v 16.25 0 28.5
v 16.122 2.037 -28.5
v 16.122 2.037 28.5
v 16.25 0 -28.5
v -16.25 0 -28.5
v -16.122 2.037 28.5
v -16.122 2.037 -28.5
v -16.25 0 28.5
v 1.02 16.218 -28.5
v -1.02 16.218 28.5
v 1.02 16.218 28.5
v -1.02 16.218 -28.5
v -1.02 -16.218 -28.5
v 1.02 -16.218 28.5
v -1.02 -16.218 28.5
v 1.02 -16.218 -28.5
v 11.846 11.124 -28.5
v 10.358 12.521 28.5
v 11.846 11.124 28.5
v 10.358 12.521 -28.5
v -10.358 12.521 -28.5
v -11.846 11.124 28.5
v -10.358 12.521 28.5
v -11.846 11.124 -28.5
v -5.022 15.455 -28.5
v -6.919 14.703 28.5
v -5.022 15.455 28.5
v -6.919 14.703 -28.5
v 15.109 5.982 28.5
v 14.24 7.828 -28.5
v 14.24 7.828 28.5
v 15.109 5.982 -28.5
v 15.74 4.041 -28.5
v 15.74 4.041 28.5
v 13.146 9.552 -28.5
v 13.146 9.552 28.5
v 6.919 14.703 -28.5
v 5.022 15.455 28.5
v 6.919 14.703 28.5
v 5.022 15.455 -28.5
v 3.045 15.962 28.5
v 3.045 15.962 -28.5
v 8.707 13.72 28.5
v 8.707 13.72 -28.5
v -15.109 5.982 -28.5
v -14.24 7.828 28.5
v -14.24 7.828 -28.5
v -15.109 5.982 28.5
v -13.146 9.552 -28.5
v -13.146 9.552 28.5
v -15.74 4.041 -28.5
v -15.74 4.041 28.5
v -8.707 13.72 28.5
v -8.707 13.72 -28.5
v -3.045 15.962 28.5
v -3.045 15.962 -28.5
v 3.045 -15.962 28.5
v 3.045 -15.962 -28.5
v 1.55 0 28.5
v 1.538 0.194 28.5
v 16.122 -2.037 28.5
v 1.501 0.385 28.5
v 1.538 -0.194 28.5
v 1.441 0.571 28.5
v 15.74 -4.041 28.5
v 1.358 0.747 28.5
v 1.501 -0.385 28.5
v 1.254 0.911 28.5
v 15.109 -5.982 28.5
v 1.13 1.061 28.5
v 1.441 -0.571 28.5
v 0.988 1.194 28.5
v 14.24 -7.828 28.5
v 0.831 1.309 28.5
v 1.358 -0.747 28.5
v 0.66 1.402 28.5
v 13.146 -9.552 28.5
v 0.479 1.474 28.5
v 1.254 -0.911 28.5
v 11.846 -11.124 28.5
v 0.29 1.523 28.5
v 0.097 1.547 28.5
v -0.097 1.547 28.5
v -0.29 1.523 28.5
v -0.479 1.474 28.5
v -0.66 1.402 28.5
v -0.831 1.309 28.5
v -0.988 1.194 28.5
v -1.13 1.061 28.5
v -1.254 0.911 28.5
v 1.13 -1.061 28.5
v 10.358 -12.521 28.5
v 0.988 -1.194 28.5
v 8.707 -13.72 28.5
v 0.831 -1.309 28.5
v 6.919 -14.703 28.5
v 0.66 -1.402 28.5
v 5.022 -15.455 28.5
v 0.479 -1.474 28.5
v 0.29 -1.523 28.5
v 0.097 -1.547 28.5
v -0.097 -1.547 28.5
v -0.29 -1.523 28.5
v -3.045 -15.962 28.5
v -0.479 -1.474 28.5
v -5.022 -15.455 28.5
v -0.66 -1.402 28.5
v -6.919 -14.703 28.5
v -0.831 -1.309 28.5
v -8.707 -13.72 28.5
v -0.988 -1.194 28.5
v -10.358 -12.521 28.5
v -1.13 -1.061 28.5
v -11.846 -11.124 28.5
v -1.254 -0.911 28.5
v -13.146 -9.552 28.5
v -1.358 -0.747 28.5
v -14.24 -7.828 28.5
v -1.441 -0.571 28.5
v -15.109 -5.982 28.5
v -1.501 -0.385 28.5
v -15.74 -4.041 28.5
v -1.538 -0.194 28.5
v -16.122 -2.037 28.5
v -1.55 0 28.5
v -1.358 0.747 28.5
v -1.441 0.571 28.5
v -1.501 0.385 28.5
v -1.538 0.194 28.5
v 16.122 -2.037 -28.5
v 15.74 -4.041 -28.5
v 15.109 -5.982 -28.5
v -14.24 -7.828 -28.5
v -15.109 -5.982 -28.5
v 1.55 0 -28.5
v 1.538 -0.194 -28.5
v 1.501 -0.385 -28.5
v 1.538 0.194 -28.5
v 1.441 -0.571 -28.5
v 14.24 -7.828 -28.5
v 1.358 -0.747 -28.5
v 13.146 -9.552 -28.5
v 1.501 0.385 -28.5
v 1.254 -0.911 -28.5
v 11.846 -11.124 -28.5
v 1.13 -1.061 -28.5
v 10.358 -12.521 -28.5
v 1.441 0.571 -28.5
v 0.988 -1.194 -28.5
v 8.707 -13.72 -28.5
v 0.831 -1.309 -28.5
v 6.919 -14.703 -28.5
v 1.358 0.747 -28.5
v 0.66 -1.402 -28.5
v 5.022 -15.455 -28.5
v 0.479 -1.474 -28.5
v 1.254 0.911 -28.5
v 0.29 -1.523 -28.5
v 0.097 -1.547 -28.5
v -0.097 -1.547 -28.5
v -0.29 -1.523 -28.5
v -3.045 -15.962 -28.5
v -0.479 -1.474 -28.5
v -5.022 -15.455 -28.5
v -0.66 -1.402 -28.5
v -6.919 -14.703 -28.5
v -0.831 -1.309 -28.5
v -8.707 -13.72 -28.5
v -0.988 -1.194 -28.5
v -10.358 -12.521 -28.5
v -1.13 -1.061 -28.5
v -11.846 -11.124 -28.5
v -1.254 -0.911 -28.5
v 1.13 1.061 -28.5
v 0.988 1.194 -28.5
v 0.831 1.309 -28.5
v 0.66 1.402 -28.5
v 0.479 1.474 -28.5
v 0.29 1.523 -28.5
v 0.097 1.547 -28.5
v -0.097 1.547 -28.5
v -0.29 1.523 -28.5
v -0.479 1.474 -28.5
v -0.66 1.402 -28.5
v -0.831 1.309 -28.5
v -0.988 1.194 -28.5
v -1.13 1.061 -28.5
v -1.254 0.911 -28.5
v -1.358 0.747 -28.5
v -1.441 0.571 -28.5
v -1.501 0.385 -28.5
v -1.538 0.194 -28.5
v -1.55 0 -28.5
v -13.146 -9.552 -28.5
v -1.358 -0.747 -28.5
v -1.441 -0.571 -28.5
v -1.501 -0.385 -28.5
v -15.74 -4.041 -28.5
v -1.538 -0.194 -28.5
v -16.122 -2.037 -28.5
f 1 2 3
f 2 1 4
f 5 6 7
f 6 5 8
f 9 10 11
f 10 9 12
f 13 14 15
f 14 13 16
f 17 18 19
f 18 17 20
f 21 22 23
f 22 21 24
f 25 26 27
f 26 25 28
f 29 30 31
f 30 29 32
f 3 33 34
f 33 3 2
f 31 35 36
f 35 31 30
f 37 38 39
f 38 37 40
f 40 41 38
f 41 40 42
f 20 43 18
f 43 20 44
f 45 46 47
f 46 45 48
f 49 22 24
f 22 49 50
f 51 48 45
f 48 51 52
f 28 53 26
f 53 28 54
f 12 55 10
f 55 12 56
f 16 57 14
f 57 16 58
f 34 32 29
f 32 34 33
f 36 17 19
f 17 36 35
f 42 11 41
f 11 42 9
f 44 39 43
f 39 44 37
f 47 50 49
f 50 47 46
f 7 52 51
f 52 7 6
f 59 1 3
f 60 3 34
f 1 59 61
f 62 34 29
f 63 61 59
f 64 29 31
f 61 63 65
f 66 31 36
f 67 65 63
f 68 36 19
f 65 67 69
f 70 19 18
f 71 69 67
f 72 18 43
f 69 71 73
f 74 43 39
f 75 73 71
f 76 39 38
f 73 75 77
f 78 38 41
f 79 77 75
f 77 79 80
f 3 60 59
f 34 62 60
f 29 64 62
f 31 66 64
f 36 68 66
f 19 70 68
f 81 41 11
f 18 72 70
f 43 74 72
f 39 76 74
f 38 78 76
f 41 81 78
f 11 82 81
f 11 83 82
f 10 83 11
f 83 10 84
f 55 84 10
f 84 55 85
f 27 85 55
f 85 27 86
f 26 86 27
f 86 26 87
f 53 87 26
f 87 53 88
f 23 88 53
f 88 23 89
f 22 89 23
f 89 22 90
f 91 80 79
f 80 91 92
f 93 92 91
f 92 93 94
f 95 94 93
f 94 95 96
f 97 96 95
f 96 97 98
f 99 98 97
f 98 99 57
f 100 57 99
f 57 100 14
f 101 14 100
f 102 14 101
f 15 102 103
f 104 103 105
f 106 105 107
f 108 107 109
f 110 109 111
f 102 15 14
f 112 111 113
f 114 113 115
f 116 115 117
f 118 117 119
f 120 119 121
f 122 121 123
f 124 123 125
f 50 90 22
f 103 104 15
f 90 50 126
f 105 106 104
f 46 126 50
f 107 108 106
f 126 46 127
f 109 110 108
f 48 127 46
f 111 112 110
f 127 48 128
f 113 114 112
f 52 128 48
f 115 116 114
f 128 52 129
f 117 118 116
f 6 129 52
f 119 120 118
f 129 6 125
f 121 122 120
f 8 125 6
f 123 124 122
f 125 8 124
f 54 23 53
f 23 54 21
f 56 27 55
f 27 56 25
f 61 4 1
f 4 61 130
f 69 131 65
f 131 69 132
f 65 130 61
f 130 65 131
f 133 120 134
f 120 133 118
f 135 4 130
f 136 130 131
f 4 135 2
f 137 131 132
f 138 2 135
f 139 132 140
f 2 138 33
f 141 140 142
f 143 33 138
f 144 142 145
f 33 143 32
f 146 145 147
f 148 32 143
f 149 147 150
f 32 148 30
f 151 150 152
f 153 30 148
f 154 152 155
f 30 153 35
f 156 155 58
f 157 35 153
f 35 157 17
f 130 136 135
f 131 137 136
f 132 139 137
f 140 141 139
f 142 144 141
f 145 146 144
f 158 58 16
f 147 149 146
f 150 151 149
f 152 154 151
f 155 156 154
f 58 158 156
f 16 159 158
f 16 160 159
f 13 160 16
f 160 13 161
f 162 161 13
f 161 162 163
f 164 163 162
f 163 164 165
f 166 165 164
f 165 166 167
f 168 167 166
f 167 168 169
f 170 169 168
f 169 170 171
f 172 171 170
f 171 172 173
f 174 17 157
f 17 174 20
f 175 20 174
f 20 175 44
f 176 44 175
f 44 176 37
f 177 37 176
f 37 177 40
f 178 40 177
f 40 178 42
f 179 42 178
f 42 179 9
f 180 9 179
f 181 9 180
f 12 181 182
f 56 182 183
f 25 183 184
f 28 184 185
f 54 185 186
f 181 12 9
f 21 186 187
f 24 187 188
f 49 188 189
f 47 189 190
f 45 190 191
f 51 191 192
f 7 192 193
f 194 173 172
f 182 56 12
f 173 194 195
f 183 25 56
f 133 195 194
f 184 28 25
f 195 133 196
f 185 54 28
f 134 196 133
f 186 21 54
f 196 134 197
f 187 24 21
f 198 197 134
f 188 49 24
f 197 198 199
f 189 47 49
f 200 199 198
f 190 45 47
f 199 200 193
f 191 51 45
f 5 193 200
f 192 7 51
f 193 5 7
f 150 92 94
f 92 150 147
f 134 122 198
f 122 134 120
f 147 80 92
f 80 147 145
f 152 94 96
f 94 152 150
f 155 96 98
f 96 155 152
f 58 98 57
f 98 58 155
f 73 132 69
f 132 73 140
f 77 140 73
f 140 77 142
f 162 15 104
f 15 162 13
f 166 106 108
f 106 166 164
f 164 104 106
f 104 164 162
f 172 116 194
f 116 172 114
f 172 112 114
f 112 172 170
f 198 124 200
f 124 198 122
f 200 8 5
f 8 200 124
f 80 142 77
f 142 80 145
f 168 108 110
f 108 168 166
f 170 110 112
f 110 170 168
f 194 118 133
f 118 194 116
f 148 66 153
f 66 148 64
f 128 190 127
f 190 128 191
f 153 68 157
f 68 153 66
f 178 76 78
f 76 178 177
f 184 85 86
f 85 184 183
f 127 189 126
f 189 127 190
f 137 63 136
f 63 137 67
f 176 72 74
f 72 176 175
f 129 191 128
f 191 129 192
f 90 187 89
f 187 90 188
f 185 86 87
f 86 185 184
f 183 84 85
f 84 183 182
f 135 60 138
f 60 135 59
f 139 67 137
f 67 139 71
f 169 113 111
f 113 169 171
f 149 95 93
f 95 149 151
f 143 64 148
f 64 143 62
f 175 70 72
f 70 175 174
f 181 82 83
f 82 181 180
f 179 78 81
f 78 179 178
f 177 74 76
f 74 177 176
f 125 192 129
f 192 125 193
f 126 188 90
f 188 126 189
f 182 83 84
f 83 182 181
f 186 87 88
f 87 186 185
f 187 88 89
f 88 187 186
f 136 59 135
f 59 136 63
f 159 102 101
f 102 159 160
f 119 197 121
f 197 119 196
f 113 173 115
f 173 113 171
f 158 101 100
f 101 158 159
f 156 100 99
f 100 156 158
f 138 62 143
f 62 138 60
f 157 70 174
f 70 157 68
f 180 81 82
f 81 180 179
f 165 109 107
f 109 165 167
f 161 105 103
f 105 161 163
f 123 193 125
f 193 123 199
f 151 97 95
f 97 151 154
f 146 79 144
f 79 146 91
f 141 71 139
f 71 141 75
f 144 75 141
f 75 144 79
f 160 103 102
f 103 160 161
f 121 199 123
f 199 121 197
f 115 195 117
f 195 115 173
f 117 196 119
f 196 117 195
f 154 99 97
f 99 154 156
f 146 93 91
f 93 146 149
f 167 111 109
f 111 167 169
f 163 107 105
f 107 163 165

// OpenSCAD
$fn = 50;


difference() {
	union() {
		translate(v = [0, 0, -28.5000000000]) {
			cylinder(h = 57, r = 16.2500000000);
		}
	}
	union() {
		translate(v = [0, 0, -100.0000000000]) {
			cylinder(h = 200, r = 1.5500000000);
		}
	}
}
